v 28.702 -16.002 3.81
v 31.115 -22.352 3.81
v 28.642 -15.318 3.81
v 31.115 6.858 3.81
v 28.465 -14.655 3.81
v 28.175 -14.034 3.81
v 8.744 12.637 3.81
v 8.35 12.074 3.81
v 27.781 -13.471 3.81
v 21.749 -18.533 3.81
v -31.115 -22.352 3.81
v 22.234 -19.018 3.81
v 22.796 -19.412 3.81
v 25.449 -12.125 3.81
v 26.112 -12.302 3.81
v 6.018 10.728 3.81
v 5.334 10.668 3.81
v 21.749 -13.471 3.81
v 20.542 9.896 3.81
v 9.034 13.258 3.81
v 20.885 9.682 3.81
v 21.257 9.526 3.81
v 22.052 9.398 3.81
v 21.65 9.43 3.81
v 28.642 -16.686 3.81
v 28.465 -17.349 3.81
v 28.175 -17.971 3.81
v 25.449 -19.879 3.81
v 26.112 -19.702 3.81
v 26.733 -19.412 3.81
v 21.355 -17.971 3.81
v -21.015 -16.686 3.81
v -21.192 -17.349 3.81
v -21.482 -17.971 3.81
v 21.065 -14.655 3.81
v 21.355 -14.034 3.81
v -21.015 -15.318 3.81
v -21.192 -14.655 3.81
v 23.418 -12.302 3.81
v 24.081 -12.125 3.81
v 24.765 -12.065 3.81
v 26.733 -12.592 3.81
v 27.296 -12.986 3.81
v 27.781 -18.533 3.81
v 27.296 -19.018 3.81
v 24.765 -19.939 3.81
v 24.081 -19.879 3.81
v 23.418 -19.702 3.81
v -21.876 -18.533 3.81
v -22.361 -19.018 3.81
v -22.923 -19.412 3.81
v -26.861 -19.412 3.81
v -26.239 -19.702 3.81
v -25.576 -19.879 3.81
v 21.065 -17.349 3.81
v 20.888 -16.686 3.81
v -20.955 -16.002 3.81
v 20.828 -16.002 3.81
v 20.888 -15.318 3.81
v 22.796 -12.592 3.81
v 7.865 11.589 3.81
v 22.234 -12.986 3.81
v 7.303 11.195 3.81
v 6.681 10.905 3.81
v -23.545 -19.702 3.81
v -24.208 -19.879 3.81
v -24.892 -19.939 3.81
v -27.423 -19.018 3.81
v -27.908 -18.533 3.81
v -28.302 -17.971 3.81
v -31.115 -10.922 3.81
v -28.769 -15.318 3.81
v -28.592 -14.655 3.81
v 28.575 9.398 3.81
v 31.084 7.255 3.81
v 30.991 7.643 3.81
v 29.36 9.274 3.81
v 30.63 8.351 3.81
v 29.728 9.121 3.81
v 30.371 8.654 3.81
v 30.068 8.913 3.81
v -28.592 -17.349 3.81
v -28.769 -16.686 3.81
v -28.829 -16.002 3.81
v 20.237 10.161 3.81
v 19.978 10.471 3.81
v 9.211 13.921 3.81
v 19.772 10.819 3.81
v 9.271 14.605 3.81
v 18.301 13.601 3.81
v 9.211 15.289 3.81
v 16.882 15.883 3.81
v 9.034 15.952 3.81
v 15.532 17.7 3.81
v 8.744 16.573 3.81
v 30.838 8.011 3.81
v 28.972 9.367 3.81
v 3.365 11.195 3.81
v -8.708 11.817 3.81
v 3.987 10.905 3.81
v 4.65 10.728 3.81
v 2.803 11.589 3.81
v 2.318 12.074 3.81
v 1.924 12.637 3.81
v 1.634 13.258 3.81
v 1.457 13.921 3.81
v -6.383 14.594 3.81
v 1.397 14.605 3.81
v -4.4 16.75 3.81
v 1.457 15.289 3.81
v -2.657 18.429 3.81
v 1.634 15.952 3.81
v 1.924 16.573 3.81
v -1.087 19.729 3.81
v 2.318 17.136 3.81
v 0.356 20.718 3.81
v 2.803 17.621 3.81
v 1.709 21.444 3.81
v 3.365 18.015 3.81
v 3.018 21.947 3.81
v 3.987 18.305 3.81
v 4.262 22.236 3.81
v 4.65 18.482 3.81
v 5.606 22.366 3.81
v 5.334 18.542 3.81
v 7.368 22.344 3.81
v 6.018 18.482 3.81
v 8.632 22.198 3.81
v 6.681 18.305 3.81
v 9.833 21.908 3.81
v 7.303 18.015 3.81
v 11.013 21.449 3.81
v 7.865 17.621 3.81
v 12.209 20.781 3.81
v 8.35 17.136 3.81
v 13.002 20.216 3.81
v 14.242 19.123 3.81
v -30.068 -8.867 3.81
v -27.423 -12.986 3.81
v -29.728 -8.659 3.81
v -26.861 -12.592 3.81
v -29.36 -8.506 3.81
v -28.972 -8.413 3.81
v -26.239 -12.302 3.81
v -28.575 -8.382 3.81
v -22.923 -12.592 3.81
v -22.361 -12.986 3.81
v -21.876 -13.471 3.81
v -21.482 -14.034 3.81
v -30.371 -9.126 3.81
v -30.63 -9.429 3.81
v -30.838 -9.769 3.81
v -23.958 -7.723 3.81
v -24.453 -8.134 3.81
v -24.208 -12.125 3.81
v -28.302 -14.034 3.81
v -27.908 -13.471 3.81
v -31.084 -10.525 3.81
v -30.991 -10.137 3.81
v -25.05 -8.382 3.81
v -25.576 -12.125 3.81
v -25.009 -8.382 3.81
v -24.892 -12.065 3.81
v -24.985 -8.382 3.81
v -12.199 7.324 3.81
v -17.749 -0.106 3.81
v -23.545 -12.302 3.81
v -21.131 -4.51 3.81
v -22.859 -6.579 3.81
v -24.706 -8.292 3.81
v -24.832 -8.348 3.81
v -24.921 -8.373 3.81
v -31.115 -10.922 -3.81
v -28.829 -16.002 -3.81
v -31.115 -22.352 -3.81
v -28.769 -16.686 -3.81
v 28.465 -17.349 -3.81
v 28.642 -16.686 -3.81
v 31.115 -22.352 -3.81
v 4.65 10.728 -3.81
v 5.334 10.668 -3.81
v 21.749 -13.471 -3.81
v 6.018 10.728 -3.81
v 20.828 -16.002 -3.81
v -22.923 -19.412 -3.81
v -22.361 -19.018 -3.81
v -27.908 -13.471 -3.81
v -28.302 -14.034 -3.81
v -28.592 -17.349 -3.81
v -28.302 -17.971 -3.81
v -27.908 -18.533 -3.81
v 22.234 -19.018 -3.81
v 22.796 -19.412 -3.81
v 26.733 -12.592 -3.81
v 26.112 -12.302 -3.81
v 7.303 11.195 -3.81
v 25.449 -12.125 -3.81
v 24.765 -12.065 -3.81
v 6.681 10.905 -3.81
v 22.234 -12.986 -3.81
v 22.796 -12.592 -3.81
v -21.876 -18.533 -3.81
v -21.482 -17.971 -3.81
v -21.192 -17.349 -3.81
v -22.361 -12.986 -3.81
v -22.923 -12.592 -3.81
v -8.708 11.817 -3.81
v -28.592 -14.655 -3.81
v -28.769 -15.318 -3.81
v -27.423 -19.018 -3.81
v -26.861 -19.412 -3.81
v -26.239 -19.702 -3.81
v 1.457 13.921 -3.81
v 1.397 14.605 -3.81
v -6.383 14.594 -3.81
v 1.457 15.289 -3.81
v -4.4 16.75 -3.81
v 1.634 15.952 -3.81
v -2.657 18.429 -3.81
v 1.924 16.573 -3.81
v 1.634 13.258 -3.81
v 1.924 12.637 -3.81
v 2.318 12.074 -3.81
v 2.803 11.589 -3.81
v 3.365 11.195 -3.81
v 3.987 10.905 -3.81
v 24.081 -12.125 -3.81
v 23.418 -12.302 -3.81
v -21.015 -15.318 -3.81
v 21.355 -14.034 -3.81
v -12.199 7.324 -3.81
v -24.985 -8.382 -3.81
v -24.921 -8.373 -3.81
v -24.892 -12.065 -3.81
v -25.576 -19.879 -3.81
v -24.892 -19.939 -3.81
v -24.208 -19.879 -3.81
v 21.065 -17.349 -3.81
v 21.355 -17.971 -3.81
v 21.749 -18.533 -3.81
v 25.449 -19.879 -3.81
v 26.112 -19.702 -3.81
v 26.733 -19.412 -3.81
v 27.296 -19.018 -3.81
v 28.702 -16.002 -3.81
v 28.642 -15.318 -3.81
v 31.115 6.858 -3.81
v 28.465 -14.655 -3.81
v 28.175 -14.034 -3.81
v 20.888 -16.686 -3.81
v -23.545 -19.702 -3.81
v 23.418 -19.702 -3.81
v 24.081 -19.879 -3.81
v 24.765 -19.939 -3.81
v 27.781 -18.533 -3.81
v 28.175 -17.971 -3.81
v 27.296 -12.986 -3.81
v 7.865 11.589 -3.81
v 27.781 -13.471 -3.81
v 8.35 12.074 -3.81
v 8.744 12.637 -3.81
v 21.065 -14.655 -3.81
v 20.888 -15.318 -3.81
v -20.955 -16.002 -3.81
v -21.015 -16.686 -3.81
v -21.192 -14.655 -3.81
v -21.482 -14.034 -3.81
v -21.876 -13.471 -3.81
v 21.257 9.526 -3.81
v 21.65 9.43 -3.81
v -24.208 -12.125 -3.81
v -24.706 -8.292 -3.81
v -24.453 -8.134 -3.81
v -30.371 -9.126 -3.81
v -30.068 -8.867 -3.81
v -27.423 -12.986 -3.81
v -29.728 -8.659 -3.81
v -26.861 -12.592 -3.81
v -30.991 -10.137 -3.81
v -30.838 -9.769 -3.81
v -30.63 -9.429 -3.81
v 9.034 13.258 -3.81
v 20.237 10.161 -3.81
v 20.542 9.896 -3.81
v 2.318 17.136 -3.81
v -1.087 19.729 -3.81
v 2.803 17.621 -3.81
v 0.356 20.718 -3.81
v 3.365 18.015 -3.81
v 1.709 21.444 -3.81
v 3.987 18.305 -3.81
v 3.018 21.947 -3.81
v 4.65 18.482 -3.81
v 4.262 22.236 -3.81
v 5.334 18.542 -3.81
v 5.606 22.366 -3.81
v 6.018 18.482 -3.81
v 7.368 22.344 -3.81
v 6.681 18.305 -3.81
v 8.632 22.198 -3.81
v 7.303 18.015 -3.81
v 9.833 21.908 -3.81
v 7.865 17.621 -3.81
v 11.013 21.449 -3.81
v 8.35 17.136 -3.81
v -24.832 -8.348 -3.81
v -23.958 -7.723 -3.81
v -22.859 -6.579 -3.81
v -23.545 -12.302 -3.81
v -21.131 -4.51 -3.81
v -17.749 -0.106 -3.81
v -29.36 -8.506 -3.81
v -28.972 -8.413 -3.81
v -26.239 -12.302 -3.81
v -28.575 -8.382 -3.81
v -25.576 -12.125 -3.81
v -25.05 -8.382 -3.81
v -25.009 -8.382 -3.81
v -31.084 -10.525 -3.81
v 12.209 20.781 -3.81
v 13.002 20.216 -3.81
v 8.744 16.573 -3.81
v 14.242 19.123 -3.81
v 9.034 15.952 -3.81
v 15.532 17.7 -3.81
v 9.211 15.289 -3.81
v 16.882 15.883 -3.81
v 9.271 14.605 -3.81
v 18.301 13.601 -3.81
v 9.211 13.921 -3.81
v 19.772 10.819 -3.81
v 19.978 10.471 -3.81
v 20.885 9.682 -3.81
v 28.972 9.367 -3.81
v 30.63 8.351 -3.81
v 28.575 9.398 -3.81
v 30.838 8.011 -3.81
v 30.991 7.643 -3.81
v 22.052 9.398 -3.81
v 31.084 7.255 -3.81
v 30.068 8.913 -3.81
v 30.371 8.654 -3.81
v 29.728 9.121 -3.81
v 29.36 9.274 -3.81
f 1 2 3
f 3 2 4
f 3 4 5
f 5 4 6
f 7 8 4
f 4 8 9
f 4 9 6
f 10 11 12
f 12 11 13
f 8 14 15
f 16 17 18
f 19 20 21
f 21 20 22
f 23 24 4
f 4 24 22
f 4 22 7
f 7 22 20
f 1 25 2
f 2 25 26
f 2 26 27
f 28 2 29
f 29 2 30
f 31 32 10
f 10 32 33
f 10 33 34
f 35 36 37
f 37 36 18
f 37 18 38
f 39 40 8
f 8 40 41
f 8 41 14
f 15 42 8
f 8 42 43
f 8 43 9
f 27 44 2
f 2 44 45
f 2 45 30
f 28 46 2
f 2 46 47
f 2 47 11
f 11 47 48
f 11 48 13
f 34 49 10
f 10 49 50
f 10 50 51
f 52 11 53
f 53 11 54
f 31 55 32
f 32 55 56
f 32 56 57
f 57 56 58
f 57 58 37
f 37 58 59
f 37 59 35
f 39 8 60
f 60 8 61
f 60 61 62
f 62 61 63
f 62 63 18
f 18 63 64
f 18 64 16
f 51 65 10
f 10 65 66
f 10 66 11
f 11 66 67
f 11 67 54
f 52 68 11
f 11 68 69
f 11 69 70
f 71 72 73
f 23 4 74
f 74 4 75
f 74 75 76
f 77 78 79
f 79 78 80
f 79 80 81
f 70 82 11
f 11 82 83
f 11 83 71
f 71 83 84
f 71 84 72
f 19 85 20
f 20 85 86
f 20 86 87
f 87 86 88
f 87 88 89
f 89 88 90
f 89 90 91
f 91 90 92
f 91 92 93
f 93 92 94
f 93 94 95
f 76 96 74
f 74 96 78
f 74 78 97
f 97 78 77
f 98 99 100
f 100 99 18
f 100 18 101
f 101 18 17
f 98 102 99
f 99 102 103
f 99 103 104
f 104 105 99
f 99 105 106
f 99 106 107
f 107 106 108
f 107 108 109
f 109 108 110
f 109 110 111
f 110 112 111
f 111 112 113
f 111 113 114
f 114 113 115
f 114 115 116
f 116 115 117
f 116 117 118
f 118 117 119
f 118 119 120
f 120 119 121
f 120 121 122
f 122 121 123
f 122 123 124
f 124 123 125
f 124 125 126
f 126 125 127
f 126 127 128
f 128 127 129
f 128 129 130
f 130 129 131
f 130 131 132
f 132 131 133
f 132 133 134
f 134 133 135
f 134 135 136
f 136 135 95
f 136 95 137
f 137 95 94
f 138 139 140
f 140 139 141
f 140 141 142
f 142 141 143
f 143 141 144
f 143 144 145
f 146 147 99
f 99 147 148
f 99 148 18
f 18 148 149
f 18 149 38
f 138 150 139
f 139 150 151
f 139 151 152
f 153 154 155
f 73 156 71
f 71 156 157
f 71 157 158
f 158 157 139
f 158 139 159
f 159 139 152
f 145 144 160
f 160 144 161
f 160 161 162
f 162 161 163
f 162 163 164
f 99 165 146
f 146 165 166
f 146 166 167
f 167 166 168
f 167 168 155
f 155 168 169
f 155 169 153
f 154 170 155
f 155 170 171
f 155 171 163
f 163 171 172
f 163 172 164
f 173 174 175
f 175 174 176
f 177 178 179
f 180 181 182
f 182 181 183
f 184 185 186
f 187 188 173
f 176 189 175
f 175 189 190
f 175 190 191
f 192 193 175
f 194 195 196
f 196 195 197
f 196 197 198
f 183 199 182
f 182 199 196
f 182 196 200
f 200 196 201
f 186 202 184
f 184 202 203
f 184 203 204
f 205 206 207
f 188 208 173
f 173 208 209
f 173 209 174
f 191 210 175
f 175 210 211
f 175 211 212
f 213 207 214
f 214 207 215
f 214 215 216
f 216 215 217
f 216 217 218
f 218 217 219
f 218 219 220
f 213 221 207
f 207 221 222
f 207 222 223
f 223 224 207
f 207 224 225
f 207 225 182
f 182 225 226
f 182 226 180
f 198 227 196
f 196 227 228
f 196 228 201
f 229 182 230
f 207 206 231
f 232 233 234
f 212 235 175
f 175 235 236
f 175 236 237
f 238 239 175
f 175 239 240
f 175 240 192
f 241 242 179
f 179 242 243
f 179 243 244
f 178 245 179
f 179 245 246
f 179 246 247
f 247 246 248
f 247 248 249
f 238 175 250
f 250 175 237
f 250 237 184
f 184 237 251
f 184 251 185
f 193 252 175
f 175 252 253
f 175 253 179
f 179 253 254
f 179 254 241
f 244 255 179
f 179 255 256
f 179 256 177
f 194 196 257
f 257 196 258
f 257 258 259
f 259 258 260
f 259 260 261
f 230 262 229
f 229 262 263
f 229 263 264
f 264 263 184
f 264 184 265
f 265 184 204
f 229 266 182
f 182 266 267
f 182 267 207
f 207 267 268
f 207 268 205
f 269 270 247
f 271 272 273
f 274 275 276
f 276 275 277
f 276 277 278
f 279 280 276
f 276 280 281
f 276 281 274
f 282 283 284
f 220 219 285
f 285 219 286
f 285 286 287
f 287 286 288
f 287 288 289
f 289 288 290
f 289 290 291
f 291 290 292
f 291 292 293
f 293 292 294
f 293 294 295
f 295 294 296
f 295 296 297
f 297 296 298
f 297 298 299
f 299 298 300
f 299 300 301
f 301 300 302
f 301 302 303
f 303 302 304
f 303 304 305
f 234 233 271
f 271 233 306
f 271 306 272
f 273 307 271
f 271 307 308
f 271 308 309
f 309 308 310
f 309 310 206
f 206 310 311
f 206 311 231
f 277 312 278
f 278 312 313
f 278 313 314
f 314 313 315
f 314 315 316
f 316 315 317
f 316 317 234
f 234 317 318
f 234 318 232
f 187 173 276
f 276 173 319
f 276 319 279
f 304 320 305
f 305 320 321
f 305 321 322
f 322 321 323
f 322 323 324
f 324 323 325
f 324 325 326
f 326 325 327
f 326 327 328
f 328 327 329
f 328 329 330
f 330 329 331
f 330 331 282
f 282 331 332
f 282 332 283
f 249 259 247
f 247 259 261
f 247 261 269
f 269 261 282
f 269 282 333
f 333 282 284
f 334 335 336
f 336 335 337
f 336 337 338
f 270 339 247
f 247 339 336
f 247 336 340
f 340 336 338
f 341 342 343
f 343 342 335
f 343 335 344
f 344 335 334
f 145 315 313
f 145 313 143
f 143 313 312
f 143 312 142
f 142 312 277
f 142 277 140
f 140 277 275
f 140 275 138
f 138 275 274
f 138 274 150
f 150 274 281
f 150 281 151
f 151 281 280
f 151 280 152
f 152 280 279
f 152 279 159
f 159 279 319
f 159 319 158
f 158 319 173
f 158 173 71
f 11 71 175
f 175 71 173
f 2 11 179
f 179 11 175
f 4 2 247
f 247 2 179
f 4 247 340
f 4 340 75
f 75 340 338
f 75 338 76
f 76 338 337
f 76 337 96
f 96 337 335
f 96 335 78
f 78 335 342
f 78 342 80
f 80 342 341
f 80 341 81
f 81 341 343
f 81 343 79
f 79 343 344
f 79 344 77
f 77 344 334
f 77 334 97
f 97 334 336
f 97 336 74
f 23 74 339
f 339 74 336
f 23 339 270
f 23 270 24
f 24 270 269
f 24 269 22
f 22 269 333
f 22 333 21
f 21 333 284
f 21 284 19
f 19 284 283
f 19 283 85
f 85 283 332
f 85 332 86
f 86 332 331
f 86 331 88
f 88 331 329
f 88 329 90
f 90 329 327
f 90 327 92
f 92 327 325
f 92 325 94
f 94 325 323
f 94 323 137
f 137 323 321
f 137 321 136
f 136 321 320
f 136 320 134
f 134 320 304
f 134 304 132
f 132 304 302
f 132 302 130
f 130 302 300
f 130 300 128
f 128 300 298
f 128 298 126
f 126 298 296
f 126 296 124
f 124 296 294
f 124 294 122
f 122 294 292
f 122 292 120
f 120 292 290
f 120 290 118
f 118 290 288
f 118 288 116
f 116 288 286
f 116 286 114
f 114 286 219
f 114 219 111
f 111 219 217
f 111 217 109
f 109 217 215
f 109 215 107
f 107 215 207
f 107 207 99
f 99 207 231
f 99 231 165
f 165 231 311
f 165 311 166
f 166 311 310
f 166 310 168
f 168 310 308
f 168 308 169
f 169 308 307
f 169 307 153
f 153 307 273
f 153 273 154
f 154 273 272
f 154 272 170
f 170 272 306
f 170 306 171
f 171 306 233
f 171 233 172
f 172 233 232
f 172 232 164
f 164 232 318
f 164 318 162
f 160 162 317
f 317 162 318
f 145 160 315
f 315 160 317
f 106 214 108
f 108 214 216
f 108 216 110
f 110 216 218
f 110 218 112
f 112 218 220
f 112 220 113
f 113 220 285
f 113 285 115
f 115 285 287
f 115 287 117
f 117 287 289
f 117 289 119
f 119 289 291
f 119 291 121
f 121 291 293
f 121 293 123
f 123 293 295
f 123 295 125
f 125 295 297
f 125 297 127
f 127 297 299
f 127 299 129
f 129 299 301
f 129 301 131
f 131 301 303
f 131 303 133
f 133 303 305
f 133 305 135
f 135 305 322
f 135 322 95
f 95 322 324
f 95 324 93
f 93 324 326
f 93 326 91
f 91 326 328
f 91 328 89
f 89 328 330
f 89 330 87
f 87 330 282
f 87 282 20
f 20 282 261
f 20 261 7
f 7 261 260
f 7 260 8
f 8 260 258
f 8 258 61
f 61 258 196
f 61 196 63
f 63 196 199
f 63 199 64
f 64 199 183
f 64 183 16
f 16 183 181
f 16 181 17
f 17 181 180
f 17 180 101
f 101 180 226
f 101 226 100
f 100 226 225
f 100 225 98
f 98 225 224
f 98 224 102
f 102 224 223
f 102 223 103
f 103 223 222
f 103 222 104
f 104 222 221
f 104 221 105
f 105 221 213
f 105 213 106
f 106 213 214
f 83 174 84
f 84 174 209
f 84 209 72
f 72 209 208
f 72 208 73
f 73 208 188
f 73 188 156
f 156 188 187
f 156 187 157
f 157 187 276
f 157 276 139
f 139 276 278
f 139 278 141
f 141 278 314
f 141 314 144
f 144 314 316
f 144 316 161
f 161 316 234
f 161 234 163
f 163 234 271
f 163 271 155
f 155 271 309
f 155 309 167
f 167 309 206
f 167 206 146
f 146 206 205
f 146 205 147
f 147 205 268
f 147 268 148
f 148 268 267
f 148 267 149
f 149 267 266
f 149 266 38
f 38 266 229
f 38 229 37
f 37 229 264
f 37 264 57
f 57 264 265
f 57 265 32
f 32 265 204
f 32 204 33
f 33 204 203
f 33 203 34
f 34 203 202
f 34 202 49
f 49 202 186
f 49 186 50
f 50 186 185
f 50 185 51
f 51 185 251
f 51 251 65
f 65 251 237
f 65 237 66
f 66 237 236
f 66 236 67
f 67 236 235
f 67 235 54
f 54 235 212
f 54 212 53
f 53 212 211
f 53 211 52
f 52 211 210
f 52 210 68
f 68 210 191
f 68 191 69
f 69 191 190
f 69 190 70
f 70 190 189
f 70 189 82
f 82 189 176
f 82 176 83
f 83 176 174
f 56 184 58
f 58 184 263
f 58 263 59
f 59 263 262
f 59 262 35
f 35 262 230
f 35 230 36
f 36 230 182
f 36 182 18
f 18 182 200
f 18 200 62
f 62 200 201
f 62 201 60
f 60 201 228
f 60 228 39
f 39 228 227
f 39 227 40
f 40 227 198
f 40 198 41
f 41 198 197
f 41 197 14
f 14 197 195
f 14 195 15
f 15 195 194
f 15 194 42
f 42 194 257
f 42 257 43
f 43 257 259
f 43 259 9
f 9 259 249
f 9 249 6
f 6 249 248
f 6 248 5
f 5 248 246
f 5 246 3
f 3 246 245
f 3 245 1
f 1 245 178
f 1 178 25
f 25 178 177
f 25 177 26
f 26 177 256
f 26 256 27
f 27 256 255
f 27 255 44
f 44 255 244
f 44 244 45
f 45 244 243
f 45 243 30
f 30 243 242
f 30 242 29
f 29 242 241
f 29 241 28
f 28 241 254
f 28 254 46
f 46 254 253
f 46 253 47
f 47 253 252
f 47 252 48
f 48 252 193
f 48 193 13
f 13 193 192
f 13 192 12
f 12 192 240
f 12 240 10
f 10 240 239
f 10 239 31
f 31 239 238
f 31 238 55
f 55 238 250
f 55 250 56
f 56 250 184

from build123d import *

# Parameters (mm, degrees)
SKETCH1_R           = 3.937
BOSS_EXTRUDE1_DEPTH = 3.81


with BuildPart() as part:
    # Sketch1 → Boss-Extrude1 (new body, symmetric)
    with BuildSketch(Plane.XY):
        with BuildLine():
            Line((31.115, 6.858), (31.115, -22.352))
            Line((31.115, -22.352), (-31.115, -22.352))
            Line((-31.115, -22.352), (-31.115, -10.922))
            ThreePointArc((-31.115, -10.922), (-30.371051224, -9.125948776), (-28.575, -8.382))
            Line((-28.575, -8.382), (-25.049516684, -8.382))
            ThreePointArc((-25.049516684, -8.382), (-25.029149277, -8.382081661), (-25.008783181, -8.382326639))
            add(Edge.make_bspline(
                [(-25.008783181, -8.382326639), (-23.842012802, -8.401040323), (-18.102952542, -0.55711547), (-6.283660278, 15.246737848), (0.033942105, 22.061713275), (9.022065719, 22.599528271), (14.625326979, 21.304399973), (19.772057533, 10.818819135)],
                knots=[0.000772689, 0.000772689, 0.000772689, 0.000772689, 0.263254084, 0.33379531, 0.664808322, 0.734460983, 0.988945287, 0.988945287, 0.988945287, 0.988945287], degree=3))
            ThreePointArc((19.772057533, 10.818819135), (20.708902036, 9.782272814), (22.052196606, 9.398))
            Line((22.052196606, 9.398), (28.575, 9.398))
            ThreePointArc((28.575, 9.398), (30.371051224, 8.654051224), (31.115, 6.858))
        make_face()
        with Locations((5.334, 14.605)):
            Circle(SKETCH1_R, mode=Mode.SUBTRACT)
        with Locations((-24.892, -16.002)):
            Circle(SKETCH1_R, mode=Mode.SUBTRACT)
        with Locations((24.765, -16.002)):
            Circle(SKETCH1_R, mode=Mode.SUBTRACT)
    extrude(amount=BOSS_EXTRUDE1_DEPTH, both=True)


solid = part.part
